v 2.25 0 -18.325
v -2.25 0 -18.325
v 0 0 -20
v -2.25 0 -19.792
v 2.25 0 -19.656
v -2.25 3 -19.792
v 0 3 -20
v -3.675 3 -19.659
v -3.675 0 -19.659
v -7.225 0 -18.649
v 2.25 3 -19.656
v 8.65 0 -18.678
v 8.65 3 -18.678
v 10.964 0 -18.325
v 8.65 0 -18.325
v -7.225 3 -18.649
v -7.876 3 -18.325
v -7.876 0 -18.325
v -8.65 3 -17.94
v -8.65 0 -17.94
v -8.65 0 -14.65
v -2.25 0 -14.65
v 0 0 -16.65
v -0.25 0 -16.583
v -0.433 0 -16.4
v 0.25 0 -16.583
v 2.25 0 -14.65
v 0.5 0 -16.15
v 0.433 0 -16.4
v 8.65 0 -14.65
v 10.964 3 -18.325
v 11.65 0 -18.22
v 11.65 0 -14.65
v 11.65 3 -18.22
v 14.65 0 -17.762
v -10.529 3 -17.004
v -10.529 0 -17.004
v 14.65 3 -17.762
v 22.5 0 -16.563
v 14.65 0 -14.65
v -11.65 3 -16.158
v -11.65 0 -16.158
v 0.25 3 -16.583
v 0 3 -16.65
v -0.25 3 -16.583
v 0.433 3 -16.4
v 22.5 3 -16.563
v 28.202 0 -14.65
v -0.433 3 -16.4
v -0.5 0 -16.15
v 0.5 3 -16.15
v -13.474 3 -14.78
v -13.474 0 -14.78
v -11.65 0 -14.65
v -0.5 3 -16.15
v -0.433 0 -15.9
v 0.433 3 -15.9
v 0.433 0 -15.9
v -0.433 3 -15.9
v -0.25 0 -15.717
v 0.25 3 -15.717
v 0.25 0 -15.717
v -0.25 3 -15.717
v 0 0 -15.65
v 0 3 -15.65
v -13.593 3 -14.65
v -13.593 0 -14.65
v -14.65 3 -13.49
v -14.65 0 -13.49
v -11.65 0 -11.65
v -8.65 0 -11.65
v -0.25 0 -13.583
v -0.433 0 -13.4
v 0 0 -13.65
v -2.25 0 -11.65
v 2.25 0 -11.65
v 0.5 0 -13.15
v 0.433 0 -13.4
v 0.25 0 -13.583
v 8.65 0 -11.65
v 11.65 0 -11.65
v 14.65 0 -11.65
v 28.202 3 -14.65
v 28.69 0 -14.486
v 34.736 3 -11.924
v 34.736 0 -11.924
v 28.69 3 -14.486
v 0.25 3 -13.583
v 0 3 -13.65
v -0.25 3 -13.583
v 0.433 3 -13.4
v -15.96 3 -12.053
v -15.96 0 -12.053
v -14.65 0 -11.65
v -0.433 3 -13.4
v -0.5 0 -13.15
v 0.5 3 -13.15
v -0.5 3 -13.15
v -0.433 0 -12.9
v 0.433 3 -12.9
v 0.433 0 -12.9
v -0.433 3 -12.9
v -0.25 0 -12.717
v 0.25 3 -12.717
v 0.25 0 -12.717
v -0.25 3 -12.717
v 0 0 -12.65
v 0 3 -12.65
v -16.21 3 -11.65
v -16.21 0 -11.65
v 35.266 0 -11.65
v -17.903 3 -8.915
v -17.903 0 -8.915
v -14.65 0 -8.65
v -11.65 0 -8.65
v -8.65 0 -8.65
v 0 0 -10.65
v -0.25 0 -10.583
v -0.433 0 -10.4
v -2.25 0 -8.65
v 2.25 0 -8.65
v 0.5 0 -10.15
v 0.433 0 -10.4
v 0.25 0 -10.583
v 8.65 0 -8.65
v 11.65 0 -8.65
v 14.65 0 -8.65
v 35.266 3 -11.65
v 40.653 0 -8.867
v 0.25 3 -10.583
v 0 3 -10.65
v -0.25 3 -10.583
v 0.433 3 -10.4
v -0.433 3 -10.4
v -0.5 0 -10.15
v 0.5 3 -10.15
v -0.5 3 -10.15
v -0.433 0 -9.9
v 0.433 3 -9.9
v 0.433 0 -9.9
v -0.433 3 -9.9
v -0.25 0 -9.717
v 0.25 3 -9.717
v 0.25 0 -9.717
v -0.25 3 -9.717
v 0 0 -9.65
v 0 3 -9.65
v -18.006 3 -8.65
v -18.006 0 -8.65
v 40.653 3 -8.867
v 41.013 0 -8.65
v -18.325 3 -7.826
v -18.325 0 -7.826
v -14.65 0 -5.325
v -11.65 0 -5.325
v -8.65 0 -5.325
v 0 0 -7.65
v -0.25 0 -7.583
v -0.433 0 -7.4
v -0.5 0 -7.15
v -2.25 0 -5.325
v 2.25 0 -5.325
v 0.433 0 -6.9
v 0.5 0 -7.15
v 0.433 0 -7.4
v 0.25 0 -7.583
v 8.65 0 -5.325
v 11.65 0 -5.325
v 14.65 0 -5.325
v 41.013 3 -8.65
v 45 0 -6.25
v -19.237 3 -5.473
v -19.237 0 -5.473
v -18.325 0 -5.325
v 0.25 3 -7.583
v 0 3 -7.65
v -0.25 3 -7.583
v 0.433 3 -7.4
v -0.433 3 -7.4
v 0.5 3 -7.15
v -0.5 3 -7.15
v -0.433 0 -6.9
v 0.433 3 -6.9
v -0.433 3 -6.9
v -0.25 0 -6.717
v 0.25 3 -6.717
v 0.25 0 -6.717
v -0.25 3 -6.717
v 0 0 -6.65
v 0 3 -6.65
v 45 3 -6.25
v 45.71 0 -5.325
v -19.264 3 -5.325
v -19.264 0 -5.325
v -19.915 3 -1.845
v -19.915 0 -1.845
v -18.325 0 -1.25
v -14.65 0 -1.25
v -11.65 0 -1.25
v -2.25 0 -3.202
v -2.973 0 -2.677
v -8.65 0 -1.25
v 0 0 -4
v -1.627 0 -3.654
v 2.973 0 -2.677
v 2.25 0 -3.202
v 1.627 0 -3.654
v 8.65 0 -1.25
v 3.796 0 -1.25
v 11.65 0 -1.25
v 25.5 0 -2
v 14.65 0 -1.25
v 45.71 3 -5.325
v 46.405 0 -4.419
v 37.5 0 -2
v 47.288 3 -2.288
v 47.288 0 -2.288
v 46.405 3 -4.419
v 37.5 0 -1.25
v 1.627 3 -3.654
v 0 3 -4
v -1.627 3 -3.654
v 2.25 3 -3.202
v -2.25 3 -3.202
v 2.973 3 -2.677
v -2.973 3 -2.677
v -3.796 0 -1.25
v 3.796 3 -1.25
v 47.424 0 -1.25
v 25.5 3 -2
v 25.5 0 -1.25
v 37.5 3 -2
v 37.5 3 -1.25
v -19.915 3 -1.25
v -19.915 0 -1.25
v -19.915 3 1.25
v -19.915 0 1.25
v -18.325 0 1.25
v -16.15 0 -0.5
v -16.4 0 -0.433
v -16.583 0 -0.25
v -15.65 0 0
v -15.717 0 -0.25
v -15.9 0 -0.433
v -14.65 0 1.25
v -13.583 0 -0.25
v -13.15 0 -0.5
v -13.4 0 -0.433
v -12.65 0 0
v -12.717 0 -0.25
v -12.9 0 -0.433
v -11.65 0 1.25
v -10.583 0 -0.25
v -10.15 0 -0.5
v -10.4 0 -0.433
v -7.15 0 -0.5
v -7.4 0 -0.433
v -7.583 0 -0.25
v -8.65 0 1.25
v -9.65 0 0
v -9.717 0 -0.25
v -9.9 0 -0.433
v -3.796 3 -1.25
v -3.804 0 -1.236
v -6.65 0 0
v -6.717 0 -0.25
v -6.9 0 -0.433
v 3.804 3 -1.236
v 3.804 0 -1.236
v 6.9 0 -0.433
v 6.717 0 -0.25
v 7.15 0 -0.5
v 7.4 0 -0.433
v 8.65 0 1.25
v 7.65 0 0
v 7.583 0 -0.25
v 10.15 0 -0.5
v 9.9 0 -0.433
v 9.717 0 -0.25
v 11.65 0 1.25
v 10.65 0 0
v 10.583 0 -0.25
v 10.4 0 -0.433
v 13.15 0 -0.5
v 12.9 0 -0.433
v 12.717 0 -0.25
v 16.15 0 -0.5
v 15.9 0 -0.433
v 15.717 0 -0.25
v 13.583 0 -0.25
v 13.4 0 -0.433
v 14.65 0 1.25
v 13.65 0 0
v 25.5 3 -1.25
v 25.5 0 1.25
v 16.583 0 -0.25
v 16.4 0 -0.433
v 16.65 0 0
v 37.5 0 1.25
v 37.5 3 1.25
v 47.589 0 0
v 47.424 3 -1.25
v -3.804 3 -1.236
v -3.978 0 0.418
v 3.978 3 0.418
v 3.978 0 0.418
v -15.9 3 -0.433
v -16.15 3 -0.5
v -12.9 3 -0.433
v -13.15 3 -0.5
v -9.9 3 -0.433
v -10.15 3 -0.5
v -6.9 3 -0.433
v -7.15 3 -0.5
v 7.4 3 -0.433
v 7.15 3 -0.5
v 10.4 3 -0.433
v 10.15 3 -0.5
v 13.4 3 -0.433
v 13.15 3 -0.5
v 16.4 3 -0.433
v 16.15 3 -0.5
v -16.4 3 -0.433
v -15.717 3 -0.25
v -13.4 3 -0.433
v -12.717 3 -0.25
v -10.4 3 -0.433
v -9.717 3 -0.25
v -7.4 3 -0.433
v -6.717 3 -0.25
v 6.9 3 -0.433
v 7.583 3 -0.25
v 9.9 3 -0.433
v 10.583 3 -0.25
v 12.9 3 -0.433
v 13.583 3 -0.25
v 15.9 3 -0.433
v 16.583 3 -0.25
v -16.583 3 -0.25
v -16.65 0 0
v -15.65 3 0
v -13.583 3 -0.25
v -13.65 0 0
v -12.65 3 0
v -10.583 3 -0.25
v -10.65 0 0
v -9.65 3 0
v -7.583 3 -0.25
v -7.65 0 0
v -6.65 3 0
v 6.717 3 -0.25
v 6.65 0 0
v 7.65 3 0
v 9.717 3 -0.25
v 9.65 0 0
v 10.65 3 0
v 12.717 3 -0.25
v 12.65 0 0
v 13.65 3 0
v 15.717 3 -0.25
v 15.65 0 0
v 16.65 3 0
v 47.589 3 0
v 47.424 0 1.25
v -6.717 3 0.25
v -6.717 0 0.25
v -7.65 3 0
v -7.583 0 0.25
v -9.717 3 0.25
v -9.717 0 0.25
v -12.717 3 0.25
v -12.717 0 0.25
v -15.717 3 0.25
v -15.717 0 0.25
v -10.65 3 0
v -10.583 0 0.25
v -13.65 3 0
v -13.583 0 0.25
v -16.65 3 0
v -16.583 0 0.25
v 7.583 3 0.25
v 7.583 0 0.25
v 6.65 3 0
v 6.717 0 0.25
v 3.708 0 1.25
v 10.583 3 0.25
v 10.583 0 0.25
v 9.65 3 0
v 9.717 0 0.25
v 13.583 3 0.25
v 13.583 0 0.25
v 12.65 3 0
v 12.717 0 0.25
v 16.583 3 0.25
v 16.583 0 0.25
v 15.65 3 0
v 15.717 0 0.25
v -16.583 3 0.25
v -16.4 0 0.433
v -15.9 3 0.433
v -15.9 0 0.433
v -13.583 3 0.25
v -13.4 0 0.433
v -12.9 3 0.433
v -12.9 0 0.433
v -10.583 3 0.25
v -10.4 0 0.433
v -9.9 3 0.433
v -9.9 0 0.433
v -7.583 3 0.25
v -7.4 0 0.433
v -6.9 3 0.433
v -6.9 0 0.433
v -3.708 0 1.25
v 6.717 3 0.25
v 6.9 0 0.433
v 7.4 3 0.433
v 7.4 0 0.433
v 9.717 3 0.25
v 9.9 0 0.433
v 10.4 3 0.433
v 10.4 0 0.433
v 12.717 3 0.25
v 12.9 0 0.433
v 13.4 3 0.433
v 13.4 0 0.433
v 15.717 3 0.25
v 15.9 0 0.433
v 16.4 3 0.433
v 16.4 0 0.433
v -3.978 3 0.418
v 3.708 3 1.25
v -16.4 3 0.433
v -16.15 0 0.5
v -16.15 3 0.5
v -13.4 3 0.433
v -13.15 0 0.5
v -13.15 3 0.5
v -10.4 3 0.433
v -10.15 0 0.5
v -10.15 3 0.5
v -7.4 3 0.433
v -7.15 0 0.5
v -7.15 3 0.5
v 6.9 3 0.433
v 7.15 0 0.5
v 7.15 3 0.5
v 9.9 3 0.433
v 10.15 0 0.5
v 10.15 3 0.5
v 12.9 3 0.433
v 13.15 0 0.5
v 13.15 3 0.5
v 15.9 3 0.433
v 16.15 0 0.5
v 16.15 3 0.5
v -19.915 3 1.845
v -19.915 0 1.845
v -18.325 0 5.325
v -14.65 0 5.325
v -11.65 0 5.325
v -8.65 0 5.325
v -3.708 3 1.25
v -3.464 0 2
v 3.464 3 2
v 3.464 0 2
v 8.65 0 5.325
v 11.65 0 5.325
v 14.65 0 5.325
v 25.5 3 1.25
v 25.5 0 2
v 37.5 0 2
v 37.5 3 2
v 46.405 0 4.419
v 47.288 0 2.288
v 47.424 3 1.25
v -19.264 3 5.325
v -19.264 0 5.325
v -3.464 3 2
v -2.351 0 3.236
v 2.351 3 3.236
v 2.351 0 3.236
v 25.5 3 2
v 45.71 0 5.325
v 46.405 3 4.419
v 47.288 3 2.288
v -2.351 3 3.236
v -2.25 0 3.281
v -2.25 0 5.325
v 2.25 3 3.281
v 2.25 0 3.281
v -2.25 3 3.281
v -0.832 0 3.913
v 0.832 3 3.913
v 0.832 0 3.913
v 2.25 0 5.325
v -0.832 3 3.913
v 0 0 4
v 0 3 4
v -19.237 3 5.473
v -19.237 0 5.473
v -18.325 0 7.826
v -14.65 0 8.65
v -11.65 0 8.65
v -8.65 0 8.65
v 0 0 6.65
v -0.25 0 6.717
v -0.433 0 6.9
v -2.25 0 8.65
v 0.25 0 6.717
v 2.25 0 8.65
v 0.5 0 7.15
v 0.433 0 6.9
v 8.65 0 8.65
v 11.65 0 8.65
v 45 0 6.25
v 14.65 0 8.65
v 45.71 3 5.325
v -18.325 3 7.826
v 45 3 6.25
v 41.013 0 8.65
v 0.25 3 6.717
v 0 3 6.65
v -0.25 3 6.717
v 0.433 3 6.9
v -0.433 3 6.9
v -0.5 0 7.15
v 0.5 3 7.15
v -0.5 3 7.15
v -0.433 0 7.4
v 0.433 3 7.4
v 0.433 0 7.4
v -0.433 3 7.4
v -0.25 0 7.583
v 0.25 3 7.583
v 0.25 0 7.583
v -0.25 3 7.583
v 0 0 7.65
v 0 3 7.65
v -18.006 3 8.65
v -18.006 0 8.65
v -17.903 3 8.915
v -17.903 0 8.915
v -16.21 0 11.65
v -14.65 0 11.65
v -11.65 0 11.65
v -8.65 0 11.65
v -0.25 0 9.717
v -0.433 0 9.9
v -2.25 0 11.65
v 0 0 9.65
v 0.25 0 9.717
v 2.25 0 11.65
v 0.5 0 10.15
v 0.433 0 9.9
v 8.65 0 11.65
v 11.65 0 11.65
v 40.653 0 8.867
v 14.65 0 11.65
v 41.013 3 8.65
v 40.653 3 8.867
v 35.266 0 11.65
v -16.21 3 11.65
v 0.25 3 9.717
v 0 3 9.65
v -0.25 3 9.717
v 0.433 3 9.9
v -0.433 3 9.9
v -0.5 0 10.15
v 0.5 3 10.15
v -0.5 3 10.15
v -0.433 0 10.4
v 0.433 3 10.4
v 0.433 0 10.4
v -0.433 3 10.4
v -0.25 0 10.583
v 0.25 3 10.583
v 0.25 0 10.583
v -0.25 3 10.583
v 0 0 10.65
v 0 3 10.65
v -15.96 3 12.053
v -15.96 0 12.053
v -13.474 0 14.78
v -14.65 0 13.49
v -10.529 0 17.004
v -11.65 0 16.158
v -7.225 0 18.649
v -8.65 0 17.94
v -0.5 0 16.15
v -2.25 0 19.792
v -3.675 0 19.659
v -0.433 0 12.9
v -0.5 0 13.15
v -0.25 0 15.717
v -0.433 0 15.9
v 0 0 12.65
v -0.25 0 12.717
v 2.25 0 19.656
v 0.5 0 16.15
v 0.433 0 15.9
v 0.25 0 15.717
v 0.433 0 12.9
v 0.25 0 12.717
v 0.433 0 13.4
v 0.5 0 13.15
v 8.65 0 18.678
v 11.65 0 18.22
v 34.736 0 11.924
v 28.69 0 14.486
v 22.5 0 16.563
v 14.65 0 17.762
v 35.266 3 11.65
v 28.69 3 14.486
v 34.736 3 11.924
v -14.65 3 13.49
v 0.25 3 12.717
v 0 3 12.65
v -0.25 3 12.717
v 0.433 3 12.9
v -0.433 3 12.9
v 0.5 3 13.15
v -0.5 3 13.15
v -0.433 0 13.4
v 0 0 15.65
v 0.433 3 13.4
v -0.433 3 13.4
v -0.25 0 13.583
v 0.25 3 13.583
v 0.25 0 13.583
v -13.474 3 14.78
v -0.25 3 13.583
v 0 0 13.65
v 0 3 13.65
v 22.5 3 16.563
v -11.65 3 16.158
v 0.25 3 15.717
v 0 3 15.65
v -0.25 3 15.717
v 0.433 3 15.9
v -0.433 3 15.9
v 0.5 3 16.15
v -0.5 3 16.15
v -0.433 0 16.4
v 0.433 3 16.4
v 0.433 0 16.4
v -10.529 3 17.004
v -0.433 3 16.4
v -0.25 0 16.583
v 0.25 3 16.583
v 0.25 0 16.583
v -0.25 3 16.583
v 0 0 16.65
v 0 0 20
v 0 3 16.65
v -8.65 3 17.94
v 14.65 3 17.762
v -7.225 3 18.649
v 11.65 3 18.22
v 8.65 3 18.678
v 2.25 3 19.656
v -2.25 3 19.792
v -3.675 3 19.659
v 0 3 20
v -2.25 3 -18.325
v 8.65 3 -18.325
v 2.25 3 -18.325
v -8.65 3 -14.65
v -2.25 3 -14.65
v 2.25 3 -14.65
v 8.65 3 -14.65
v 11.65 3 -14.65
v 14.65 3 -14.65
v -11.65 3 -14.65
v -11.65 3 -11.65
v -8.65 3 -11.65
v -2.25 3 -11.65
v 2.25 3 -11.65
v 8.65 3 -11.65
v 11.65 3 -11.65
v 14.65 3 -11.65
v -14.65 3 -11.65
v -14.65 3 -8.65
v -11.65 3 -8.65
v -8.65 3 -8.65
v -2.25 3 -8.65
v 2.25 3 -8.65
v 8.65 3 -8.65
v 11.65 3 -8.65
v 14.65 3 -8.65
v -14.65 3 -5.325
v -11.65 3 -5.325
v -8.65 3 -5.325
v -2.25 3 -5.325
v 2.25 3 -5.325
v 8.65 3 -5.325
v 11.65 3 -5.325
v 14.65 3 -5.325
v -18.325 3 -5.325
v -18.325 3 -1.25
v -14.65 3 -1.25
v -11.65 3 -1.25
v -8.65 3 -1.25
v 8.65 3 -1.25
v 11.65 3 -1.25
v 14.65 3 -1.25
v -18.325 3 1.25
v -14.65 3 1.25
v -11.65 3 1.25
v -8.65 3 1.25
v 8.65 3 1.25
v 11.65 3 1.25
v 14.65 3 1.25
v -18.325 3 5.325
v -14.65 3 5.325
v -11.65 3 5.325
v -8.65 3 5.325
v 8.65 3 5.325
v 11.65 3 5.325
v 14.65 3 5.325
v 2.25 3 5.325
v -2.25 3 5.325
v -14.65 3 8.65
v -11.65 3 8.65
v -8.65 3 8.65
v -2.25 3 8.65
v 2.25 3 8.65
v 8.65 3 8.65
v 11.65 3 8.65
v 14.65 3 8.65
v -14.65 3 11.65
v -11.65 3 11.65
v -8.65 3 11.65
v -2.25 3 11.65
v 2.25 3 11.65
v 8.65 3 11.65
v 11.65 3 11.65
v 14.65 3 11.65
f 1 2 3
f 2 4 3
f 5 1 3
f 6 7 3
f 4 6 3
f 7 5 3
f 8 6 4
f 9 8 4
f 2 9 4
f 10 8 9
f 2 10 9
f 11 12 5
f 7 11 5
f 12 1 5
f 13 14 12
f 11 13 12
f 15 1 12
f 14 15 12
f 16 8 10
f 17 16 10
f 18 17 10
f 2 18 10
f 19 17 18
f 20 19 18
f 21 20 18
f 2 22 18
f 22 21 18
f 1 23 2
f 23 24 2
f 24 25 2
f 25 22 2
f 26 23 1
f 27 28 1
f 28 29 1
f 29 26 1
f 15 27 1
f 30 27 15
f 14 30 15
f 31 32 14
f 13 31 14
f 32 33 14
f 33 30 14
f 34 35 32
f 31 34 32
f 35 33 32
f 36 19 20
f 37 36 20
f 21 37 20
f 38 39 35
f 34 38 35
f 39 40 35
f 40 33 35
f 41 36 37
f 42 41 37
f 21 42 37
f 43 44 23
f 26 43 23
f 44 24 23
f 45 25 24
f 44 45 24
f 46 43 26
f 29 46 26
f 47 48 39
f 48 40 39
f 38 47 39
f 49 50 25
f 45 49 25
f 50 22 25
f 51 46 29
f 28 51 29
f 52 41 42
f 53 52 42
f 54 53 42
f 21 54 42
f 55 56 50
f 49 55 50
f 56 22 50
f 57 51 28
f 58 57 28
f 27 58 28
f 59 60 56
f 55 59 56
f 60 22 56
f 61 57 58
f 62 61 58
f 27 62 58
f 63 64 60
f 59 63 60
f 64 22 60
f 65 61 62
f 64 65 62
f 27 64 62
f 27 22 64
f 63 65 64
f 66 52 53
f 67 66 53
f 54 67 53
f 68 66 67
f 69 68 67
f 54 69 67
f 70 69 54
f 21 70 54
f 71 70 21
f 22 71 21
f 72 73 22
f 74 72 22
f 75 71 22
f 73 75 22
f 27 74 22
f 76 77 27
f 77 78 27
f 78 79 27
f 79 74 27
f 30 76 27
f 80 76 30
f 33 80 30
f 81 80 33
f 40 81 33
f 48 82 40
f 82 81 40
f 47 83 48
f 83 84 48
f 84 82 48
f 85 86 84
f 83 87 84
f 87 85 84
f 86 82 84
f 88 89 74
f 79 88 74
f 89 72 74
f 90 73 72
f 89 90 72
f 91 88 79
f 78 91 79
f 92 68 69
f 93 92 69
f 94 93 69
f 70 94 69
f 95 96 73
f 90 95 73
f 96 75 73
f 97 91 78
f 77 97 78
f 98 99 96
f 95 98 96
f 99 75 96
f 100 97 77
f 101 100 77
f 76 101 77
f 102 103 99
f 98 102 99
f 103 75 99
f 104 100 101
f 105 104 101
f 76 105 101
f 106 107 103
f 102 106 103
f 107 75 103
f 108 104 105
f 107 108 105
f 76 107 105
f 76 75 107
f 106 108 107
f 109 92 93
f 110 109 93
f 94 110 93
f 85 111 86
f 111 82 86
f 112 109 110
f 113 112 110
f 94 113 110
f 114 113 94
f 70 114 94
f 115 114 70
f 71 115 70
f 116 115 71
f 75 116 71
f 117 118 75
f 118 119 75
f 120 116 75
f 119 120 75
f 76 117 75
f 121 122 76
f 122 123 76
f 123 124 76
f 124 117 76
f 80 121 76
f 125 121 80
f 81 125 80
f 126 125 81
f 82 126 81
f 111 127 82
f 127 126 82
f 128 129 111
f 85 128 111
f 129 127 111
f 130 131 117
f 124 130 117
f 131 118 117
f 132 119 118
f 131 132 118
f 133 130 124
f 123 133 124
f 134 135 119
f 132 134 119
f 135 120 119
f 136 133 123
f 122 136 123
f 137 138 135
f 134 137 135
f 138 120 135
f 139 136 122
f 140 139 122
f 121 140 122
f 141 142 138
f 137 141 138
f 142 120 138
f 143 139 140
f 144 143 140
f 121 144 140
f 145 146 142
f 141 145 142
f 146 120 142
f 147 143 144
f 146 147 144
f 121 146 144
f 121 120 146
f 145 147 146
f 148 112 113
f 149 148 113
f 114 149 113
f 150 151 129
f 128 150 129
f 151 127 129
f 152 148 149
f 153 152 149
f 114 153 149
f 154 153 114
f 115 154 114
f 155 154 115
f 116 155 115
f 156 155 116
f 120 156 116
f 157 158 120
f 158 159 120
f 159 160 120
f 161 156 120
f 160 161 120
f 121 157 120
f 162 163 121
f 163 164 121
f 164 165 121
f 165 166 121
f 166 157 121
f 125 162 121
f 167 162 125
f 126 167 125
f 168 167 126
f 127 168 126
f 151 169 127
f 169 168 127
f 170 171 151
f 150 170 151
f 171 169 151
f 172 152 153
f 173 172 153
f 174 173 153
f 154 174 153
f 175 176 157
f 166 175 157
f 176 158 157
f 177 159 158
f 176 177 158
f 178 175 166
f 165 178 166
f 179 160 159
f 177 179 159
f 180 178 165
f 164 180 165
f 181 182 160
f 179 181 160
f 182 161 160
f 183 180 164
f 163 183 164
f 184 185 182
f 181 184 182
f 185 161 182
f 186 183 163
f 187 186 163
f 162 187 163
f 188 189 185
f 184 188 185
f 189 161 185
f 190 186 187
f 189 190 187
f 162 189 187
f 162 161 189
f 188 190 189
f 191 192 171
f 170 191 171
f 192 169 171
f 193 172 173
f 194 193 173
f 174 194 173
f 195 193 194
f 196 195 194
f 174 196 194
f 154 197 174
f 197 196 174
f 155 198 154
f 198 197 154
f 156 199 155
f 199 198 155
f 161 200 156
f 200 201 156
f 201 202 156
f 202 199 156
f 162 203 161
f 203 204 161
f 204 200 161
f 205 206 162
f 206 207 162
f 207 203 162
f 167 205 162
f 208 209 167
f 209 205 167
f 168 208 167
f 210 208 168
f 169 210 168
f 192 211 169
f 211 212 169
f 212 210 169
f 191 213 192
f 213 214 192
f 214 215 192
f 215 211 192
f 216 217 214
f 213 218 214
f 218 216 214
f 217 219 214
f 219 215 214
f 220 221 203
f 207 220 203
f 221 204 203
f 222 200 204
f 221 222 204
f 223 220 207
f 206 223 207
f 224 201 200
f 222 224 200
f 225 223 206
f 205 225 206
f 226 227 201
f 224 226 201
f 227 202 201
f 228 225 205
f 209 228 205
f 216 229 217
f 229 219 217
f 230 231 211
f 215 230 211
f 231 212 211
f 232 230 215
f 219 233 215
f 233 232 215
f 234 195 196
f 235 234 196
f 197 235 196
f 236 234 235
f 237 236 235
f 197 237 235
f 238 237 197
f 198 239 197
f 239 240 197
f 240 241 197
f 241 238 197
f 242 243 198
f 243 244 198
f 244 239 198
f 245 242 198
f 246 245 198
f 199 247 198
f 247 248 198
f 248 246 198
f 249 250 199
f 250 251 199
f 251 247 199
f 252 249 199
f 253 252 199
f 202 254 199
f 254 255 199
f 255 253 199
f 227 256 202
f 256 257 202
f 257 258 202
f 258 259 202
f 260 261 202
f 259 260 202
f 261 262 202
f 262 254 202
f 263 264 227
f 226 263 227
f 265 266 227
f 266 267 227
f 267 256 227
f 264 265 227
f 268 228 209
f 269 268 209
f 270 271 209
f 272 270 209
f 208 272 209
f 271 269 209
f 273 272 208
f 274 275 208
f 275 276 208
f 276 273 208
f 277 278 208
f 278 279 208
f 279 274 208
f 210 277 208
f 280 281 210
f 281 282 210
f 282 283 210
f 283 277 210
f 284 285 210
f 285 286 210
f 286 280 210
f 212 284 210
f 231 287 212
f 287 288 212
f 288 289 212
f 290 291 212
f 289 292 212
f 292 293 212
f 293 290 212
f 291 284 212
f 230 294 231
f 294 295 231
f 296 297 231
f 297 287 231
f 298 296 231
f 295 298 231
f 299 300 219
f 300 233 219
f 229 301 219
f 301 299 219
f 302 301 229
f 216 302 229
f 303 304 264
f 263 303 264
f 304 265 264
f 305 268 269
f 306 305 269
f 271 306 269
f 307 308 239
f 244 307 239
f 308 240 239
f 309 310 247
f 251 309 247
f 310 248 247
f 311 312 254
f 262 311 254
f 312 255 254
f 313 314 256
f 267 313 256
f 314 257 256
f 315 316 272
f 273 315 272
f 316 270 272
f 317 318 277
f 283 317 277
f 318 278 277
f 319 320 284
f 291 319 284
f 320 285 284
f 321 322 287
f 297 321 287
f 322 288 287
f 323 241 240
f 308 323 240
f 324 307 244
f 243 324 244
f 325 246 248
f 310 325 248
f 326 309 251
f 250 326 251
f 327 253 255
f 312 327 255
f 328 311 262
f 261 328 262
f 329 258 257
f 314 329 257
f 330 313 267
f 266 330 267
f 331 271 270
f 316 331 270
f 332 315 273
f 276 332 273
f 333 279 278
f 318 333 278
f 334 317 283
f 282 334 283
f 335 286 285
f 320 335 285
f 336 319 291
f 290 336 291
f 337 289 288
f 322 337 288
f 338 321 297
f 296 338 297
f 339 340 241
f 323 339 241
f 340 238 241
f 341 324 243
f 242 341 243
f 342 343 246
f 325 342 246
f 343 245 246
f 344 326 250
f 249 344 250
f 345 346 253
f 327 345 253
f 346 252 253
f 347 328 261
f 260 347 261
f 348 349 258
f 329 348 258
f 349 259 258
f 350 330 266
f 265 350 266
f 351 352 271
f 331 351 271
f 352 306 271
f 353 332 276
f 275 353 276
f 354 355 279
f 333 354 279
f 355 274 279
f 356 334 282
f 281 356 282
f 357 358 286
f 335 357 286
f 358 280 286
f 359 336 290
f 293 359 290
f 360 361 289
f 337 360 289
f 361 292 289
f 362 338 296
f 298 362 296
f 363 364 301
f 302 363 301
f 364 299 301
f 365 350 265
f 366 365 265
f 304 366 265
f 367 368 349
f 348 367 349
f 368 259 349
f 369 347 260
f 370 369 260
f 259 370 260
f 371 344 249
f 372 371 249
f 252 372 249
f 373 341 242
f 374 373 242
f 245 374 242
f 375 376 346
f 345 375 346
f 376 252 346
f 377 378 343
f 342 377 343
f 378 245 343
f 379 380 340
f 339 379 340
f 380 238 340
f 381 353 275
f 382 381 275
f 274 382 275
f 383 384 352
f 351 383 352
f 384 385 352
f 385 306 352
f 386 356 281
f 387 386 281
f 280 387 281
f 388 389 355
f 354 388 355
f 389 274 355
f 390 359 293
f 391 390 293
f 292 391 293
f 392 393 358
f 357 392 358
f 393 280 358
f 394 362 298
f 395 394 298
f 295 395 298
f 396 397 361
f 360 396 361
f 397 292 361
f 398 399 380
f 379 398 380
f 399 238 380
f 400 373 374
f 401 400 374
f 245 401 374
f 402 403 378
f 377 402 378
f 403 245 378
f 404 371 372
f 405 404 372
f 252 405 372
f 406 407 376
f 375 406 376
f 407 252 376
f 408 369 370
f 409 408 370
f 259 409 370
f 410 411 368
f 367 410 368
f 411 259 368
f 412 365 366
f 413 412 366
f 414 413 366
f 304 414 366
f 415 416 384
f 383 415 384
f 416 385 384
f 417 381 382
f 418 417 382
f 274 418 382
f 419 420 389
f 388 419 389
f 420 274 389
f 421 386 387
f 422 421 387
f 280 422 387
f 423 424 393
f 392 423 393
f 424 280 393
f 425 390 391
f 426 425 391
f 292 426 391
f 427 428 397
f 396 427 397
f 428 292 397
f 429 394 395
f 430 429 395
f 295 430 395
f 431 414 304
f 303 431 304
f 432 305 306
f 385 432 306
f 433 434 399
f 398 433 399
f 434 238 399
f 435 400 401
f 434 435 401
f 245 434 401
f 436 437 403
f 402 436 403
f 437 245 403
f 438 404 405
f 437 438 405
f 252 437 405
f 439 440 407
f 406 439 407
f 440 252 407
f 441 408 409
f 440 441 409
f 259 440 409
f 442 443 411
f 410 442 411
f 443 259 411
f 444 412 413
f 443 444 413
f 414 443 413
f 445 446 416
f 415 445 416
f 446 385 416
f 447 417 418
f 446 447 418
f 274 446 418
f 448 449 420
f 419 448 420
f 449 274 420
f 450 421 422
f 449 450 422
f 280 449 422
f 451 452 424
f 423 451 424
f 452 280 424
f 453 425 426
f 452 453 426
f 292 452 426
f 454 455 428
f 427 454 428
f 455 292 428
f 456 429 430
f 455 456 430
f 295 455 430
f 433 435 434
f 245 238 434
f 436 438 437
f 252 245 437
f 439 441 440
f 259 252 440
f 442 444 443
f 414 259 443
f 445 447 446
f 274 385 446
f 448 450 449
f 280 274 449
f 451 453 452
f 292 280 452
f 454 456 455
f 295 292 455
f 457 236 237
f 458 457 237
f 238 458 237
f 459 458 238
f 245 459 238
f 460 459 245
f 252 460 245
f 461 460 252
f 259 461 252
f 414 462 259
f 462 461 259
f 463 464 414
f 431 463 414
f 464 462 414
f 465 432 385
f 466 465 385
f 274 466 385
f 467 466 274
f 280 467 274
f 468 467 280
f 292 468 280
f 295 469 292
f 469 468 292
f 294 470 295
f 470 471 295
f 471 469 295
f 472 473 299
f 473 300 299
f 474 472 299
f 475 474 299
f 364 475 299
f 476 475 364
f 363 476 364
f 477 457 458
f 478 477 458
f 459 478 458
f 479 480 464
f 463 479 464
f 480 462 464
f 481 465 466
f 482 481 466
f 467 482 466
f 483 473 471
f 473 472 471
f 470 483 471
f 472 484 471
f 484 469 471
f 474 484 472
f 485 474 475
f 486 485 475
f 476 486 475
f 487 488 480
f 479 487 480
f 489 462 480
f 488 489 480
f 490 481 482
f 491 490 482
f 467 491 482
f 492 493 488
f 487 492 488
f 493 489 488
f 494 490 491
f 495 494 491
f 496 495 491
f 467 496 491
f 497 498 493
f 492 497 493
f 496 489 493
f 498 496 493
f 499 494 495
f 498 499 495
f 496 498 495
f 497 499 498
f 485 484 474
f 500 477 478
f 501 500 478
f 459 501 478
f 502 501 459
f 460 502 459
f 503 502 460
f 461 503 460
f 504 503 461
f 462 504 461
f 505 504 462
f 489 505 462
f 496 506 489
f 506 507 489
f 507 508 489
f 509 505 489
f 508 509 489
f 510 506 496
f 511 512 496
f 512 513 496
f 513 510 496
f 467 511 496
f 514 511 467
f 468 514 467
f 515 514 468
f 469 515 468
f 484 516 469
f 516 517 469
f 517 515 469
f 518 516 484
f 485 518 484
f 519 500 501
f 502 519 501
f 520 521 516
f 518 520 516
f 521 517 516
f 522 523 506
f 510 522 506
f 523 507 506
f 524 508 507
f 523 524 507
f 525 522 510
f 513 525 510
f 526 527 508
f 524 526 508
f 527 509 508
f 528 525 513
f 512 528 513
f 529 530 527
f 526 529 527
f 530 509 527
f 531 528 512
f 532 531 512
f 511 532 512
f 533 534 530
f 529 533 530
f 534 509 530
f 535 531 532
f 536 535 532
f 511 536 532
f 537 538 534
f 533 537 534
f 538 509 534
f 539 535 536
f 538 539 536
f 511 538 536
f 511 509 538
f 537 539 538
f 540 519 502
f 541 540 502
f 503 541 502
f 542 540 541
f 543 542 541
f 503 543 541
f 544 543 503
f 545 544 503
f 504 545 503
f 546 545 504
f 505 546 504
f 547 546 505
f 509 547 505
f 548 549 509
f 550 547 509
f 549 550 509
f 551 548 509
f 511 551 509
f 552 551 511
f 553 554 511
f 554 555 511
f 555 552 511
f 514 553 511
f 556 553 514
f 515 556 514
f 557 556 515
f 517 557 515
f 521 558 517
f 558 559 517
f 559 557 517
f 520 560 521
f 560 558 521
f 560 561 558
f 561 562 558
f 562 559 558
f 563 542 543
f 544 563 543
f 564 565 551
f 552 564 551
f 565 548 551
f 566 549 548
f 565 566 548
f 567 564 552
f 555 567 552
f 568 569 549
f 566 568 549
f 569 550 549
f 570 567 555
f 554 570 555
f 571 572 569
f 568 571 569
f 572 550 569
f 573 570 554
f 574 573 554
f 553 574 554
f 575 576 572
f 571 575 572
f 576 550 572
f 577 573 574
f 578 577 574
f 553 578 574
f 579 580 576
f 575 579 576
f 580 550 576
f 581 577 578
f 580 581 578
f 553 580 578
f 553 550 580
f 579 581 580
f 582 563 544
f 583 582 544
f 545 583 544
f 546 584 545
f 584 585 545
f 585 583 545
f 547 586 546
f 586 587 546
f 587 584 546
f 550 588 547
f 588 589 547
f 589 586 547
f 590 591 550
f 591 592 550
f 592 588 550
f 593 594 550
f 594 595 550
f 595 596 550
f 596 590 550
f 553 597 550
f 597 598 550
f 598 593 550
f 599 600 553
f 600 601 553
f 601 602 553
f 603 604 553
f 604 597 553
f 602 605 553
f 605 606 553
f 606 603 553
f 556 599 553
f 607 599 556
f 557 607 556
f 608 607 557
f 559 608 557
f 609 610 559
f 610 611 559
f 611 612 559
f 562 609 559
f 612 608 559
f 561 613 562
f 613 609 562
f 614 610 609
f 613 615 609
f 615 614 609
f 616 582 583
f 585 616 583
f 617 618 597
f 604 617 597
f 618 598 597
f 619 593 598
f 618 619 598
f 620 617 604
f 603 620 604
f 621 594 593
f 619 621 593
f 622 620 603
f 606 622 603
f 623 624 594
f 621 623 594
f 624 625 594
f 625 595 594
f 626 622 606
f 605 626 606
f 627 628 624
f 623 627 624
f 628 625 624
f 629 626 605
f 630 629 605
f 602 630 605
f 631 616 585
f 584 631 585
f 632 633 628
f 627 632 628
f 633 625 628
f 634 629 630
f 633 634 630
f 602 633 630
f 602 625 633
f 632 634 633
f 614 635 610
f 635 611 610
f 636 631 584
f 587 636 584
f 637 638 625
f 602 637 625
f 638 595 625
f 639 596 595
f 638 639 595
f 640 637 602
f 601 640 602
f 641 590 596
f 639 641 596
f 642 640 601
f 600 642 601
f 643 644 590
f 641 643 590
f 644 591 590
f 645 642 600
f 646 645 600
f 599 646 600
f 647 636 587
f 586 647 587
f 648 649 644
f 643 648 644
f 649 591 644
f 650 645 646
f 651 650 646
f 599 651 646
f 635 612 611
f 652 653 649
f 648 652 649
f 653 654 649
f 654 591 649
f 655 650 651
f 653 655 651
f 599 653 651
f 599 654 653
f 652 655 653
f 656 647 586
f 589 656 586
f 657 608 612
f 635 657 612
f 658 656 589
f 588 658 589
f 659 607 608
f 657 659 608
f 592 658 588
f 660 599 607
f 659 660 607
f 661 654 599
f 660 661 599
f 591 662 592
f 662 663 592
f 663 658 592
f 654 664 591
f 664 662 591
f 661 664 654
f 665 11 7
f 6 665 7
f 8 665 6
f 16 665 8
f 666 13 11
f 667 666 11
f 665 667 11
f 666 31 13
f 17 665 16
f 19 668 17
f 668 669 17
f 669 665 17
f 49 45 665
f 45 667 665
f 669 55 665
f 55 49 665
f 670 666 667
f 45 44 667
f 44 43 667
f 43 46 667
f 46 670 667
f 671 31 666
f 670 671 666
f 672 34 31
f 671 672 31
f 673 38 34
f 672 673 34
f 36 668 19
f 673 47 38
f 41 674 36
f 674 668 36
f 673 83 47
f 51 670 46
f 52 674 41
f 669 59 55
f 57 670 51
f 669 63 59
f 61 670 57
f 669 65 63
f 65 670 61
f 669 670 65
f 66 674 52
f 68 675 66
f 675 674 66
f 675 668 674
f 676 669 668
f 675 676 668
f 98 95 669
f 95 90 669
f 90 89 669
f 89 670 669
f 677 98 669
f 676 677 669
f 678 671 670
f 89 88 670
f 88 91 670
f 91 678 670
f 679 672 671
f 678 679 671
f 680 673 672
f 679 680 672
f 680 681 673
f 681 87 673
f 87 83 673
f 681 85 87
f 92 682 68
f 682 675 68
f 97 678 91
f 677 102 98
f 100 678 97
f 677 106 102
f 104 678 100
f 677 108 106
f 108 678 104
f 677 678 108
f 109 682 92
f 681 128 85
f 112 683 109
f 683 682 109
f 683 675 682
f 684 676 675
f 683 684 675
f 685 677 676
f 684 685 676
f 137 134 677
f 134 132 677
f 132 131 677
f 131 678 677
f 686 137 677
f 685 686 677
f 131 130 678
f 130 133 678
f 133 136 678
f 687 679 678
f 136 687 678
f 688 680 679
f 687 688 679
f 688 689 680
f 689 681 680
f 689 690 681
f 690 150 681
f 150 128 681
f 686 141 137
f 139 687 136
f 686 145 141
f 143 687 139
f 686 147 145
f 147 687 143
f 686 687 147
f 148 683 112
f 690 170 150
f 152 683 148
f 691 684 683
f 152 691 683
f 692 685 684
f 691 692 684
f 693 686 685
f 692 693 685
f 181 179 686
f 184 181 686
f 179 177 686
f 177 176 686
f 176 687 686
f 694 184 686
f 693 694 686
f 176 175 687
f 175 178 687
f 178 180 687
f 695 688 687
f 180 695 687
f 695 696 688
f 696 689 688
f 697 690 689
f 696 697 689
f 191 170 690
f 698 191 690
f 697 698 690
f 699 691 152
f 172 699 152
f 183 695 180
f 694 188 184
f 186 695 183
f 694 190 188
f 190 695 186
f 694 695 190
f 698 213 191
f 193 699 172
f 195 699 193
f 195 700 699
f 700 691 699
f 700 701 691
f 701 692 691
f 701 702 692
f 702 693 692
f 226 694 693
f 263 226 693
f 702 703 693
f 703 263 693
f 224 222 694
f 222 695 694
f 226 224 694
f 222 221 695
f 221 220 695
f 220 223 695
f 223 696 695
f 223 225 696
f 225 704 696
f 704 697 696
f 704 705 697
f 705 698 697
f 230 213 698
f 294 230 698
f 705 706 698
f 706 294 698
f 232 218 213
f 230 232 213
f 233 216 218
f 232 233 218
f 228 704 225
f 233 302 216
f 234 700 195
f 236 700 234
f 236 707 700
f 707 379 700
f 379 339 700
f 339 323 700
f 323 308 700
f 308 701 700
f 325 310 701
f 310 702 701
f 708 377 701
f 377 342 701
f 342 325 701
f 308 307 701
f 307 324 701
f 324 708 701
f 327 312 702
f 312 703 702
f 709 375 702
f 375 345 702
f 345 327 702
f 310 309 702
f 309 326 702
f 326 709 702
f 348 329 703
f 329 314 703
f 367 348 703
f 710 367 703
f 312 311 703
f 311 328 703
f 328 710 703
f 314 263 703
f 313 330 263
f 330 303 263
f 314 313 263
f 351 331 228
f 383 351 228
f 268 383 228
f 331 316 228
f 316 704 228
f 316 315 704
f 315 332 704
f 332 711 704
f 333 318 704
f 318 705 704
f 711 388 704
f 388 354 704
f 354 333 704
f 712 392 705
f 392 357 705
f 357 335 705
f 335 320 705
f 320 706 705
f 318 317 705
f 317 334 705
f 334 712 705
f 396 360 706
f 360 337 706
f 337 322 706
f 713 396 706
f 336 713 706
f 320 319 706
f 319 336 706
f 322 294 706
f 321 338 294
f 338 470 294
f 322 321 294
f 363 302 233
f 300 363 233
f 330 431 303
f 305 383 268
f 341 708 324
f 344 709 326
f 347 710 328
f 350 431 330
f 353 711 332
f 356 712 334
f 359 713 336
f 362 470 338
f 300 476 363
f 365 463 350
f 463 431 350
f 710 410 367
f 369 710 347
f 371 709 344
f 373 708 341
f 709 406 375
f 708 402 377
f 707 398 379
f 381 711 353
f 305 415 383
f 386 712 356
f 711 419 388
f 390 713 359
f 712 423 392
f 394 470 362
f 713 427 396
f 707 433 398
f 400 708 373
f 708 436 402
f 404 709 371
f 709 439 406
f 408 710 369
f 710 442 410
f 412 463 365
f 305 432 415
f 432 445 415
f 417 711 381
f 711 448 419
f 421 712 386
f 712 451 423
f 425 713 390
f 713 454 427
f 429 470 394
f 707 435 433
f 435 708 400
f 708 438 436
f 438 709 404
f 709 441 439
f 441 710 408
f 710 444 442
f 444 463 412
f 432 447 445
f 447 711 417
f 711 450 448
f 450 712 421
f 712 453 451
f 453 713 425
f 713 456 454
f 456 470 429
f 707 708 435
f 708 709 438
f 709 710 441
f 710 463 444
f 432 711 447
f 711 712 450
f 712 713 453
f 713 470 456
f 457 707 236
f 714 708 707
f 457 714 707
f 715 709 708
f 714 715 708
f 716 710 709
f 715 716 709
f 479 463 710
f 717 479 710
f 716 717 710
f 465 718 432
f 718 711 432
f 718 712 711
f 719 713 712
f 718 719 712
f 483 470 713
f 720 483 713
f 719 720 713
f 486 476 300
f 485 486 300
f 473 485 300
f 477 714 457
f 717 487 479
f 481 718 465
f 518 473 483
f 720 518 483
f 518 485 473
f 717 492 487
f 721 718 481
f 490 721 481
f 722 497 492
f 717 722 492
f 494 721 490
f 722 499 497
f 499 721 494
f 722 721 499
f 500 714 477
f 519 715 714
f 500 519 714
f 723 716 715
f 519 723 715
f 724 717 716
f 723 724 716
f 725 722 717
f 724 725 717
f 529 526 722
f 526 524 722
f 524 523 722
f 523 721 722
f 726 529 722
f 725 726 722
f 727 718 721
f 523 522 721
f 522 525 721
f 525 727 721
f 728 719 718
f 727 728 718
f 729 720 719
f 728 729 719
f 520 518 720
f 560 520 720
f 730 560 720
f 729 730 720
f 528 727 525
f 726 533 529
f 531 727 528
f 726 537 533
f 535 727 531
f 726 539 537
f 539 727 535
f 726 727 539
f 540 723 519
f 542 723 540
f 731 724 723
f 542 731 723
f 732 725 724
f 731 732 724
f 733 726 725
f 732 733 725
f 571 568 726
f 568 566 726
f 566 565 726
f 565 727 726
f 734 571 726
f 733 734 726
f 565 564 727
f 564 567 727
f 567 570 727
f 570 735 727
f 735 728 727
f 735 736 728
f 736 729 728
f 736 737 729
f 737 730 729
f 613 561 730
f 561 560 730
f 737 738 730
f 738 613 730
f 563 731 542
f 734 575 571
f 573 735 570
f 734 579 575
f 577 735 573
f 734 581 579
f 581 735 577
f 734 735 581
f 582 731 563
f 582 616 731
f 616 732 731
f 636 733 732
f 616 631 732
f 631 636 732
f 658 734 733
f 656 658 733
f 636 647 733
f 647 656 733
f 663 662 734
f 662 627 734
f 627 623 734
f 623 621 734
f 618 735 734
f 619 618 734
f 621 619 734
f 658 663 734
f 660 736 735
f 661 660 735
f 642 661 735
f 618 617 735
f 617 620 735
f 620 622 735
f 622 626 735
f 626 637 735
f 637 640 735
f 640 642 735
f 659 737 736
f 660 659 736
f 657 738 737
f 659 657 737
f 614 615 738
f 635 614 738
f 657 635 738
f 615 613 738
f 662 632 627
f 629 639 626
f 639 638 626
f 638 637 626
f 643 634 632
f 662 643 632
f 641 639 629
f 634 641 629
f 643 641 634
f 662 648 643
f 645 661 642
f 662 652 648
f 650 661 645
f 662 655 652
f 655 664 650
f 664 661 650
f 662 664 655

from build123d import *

# Parameters (mm, degrees)
SKETCH1_R           = 0.5
SKETCH1_R_2         = 4
SKETCH1_W           = 12
SKETCH1_H           = 4
BOSS_EXTRUDE1_DEPTH = 3


with BuildPart() as part:
    # Sketch1 → Boss-Extrude1 (new body)
    with BuildSketch(Plane(origin=(0, 0, 0), x_dir=(1, 0, 0), z_dir=(0, 1, 0))):
        with BuildLine():
            add(Edge.make_bspline(
                [(22.5, -16.5625), (34.262295129, -13.118708317), (45, -6.25)],
                knots=[0.479061635, 0.479061635, 0.479061635, 1, 1, 1], degree=2))
            ThreePointArc((45, -6.25), (47.588834765, 0), (45, 6.25))
            add(Edge.make_bspline(
                [(22.5, 16.5625), (34.262295129, 13.118708317), (45, 6.25)],
                knots=[0.479061635, 0.479061635, 0.479061635, 1, 1, 1], degree=2))
            Line((22.5, 16.5625), (0, 20))
            ThreePointArc((0, 20), (-20, 0), (0, -20))
            Line((0, -20), (22.5, -16.5625))
        make_face()
        with Locations(Location((0, -16.15, 0), (0, 0, 270))):
            Circle(SKETCH1_R, mode=Mode.SUBTRACT)
        with Locations(Location((0, -13.15, 0), (0, 0, 270))):
            Circle(SKETCH1_R, mode=Mode.SUBTRACT)
        with Locations(Location((0, -10.15, 0), (0, 0, 270))):
            Circle(SKETCH1_R, mode=Mode.SUBTRACT)
        with Locations(Location((-16.15, 0, 0), (0, 0, 270))):
            Circle(SKETCH1_R, mode=Mode.SUBTRACT)
        with BuildLine():
            ThreePointArc((-13.65, 0), (-13.15, 0.5), (-12.65, 0))
            ThreePointArc((-12.65, 0), (-13.15, -0.5), (-13.65, 0))
        make_face(mode=Mode.SUBTRACT)
        with BuildLine():
            ThreePointArc((-10.65, 0), (-10.15, 0.5), (-9.65, 0))
            ThreePointArc((-9.65, 0), (-10.15, -0.5), (-10.65, 0))
        make_face(mode=Mode.SUBTRACT)
        with BuildLine():
            ThreePointArc((-7.65, 0), (-7.15, 0.5), (-6.65, 0))
            ThreePointArc((-6.65, 0), (-7.15, -0.5), (-7.65, 0))
        make_face(mode=Mode.SUBTRACT)
        with Locations(Location((0, -7.15, 0), (0, 0, 270))):
            Circle(SKETCH1_R, mode=Mode.SUBTRACT)
        with Locations(Location((0, 0, 0), (0, 0, 270))):
            Circle(SKETCH1_R_2, mode=Mode.SUBTRACT)
        with Locations(Location((7.15, 0, 0), (0, 0, 270))):
            Circle(SKETCH1_R, mode=Mode.SUBTRACT)
        with Locations(Location((10.15, 0, 0), (0, 0, 270))):
            Circle(SKETCH1_R, mode=Mode.SUBTRACT)
        with Locations(Location((13.15, 0, 0), (0, 0, 270))):
            Circle(SKETCH1_R, mode=Mode.SUBTRACT)
        with Locations(Location((16.15, 0, 0), (0, 0, 270))):
            Circle(SKETCH1_R, mode=Mode.SUBTRACT)
        with Locations(Location((0, 7.15, 0), (0, 0, 270))):
            Circle(SKETCH1_R, mode=Mode.SUBTRACT)
        with Locations(Location((0, 10.15, 0), (0, 0, 270))):
            Circle(SKETCH1_R, mode=Mode.SUBTRACT)
        with Locations(Location((0, 13.15, 0), (0, 0, 270))):
            Circle(SKETCH1_R, mode=Mode.SUBTRACT)
        with Locations(Location((0, 16.15, 0), (0, 0, 270))):
            Circle(SKETCH1_R, mode=Mode.SUBTRACT)
        with Locations((31.5, 0)):
            Rectangle(SKETCH1_W, SKETCH1_H, mode=Mode.SUBTRACT)
    extrude(amount=BOSS_EXTRUDE1_DEPTH)


solid = part.part
